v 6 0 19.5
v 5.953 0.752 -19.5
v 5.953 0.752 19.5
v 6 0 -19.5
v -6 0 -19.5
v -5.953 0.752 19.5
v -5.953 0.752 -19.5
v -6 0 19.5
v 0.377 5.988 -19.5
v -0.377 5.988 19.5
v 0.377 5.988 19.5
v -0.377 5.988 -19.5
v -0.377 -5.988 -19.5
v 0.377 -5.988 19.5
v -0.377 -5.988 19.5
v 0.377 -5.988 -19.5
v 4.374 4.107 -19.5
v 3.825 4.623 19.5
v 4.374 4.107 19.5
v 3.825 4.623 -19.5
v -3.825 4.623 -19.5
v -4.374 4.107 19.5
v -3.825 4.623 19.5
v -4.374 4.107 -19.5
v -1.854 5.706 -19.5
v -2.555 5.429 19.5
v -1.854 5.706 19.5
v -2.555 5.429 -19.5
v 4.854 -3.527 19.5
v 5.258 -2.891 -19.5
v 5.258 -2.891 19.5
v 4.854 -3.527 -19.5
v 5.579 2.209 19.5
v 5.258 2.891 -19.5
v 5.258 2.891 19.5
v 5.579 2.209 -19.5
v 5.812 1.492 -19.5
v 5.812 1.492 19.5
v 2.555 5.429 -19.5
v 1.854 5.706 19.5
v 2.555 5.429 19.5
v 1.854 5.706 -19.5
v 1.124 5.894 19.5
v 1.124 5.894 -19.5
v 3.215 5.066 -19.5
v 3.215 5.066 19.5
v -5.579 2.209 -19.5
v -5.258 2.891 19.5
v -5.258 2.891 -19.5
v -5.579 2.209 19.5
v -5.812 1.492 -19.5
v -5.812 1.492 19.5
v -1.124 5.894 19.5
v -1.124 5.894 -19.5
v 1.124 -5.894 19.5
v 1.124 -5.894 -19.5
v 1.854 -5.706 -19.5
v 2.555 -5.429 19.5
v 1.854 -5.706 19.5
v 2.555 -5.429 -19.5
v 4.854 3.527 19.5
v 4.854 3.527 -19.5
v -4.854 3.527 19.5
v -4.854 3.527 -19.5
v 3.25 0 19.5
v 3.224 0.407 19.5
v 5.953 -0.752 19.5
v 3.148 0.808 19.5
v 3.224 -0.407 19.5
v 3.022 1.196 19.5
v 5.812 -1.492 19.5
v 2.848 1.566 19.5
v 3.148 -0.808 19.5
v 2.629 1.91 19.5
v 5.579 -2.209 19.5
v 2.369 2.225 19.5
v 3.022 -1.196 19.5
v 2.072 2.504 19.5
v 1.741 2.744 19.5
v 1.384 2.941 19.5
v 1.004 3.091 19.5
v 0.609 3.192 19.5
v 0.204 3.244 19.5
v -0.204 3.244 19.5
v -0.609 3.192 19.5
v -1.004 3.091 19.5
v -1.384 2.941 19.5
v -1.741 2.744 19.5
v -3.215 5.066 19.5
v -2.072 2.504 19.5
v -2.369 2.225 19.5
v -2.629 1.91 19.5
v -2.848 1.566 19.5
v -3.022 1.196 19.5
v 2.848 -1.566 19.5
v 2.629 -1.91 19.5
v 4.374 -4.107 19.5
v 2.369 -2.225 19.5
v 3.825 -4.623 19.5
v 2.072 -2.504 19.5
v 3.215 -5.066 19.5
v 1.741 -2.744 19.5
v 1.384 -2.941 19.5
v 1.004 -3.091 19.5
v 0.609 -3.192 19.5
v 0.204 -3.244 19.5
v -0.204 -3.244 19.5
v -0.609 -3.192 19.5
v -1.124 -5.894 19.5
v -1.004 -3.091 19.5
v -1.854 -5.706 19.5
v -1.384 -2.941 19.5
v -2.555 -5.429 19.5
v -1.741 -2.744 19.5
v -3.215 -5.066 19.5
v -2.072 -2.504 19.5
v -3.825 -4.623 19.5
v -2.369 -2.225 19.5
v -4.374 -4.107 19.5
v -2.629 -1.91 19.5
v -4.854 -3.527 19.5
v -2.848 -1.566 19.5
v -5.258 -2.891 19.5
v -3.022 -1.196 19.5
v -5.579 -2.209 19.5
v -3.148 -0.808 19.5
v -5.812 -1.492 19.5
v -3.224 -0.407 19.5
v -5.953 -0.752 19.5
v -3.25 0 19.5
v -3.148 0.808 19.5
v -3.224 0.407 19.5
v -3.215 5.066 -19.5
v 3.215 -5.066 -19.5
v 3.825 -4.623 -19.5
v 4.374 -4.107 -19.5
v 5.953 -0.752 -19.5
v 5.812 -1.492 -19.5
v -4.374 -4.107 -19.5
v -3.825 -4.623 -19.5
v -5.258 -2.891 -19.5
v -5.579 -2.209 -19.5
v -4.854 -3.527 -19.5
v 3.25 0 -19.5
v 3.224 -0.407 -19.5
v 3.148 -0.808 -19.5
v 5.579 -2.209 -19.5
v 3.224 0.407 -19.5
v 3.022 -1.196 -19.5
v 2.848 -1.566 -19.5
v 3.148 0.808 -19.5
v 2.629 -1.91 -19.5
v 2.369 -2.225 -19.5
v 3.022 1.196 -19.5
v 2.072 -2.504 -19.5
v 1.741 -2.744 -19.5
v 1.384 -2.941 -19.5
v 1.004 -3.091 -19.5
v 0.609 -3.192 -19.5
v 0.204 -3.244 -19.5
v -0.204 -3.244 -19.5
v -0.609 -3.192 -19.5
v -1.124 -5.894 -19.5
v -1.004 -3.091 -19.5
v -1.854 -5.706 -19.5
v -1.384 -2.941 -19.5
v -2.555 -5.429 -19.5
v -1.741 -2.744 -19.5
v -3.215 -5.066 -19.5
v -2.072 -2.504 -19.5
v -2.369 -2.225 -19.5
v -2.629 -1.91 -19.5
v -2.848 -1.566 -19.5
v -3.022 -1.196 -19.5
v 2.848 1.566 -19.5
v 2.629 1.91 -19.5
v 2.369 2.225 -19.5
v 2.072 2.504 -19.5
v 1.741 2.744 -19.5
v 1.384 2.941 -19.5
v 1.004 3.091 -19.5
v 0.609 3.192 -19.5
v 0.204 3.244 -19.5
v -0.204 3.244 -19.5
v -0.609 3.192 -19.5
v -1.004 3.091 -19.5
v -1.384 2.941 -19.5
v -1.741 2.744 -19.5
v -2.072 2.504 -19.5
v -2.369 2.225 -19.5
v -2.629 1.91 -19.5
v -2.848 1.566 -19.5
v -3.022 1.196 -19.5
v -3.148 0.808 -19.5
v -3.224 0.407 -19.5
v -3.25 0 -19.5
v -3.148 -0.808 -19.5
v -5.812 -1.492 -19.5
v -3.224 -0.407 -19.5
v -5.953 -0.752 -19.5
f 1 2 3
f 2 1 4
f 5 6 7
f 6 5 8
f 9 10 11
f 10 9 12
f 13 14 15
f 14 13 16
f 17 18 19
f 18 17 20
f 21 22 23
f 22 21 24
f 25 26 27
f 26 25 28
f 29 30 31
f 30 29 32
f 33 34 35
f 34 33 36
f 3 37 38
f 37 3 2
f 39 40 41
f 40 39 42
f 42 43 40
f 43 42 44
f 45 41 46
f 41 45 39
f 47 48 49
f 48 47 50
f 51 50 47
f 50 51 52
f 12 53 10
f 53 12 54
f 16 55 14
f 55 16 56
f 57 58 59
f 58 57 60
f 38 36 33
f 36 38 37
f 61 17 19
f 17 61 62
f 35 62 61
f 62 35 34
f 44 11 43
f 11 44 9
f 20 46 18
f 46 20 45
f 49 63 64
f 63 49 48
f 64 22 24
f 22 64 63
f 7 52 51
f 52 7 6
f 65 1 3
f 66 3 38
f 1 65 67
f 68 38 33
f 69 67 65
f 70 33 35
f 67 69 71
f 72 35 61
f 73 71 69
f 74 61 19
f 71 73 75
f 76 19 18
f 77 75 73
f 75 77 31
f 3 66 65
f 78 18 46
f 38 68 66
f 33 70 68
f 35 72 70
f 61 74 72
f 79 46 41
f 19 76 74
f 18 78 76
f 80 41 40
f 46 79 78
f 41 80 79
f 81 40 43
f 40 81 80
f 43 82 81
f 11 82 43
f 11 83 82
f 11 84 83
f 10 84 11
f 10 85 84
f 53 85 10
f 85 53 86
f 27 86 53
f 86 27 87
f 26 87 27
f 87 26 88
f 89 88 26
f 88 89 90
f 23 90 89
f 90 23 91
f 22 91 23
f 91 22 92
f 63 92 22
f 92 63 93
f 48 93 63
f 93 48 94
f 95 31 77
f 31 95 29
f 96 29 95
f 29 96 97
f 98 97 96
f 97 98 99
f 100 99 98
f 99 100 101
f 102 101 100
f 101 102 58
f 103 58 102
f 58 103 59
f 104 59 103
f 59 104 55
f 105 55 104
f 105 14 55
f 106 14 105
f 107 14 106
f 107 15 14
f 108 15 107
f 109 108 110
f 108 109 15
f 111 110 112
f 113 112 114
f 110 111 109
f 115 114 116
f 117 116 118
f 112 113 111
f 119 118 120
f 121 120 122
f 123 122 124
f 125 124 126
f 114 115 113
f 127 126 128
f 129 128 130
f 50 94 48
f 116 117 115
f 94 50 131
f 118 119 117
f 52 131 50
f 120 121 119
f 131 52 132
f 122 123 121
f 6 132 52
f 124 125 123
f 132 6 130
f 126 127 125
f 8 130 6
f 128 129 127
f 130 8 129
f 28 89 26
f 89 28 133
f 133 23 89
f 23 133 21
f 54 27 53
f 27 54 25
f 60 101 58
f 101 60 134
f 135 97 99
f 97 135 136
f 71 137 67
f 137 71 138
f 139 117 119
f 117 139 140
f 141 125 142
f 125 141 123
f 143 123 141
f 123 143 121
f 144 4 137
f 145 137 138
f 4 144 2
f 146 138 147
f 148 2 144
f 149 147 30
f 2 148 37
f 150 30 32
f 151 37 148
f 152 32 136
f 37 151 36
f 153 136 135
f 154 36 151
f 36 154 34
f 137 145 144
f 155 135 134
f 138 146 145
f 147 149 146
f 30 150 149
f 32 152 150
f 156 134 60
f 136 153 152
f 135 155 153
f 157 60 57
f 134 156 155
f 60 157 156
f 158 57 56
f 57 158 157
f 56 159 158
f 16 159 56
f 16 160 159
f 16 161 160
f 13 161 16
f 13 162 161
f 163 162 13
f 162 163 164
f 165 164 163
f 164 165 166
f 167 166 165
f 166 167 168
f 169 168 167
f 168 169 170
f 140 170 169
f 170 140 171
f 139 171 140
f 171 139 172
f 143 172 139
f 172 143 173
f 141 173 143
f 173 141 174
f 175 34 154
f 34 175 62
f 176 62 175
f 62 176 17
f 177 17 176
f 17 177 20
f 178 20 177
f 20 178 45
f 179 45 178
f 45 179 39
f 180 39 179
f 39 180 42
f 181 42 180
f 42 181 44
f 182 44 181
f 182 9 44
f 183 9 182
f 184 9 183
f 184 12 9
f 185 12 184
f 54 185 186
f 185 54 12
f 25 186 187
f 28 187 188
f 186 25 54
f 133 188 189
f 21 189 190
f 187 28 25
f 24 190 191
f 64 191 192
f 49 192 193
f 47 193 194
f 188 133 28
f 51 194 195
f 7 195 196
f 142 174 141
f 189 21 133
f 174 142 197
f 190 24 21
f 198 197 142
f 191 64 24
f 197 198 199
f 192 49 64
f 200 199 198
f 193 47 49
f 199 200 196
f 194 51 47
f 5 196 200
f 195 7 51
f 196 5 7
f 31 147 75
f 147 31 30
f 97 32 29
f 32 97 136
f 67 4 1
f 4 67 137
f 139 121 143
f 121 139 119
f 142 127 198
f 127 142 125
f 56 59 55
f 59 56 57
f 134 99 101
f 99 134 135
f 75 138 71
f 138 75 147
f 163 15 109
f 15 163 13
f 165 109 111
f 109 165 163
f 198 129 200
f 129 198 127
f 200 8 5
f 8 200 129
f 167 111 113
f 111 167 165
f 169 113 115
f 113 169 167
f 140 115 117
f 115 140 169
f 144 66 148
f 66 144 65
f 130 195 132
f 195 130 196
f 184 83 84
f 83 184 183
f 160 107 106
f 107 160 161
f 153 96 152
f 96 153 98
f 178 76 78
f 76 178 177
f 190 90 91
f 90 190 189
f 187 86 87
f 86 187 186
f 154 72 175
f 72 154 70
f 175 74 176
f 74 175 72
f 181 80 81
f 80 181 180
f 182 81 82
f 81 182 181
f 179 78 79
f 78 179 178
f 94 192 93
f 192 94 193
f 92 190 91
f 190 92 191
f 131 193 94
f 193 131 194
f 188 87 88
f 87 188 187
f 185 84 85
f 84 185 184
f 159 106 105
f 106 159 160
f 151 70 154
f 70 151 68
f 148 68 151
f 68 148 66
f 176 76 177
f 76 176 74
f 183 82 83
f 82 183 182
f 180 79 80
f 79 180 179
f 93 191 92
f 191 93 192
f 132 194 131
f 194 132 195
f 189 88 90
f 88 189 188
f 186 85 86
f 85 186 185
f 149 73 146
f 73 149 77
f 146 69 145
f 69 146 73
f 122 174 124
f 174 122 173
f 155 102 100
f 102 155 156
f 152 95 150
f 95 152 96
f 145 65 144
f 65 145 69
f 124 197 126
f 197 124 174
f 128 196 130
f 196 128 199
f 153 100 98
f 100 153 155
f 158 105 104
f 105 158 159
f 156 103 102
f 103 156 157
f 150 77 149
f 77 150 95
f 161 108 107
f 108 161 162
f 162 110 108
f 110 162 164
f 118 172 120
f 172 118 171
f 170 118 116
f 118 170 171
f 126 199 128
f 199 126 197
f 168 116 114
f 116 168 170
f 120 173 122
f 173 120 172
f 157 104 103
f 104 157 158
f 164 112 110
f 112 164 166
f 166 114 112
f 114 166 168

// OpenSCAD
$fn = 50;


difference() {
	union() {
		translate(v = [0, 0, -19.5000000000]) {
			cylinder(h = 39, r = 6.0000000000);
		}
	}
	union() {
		translate(v = [0, 0, -100.0000000000]) {
			cylinder(h = 200, r = 3.2500000000);
		}
	}
}
